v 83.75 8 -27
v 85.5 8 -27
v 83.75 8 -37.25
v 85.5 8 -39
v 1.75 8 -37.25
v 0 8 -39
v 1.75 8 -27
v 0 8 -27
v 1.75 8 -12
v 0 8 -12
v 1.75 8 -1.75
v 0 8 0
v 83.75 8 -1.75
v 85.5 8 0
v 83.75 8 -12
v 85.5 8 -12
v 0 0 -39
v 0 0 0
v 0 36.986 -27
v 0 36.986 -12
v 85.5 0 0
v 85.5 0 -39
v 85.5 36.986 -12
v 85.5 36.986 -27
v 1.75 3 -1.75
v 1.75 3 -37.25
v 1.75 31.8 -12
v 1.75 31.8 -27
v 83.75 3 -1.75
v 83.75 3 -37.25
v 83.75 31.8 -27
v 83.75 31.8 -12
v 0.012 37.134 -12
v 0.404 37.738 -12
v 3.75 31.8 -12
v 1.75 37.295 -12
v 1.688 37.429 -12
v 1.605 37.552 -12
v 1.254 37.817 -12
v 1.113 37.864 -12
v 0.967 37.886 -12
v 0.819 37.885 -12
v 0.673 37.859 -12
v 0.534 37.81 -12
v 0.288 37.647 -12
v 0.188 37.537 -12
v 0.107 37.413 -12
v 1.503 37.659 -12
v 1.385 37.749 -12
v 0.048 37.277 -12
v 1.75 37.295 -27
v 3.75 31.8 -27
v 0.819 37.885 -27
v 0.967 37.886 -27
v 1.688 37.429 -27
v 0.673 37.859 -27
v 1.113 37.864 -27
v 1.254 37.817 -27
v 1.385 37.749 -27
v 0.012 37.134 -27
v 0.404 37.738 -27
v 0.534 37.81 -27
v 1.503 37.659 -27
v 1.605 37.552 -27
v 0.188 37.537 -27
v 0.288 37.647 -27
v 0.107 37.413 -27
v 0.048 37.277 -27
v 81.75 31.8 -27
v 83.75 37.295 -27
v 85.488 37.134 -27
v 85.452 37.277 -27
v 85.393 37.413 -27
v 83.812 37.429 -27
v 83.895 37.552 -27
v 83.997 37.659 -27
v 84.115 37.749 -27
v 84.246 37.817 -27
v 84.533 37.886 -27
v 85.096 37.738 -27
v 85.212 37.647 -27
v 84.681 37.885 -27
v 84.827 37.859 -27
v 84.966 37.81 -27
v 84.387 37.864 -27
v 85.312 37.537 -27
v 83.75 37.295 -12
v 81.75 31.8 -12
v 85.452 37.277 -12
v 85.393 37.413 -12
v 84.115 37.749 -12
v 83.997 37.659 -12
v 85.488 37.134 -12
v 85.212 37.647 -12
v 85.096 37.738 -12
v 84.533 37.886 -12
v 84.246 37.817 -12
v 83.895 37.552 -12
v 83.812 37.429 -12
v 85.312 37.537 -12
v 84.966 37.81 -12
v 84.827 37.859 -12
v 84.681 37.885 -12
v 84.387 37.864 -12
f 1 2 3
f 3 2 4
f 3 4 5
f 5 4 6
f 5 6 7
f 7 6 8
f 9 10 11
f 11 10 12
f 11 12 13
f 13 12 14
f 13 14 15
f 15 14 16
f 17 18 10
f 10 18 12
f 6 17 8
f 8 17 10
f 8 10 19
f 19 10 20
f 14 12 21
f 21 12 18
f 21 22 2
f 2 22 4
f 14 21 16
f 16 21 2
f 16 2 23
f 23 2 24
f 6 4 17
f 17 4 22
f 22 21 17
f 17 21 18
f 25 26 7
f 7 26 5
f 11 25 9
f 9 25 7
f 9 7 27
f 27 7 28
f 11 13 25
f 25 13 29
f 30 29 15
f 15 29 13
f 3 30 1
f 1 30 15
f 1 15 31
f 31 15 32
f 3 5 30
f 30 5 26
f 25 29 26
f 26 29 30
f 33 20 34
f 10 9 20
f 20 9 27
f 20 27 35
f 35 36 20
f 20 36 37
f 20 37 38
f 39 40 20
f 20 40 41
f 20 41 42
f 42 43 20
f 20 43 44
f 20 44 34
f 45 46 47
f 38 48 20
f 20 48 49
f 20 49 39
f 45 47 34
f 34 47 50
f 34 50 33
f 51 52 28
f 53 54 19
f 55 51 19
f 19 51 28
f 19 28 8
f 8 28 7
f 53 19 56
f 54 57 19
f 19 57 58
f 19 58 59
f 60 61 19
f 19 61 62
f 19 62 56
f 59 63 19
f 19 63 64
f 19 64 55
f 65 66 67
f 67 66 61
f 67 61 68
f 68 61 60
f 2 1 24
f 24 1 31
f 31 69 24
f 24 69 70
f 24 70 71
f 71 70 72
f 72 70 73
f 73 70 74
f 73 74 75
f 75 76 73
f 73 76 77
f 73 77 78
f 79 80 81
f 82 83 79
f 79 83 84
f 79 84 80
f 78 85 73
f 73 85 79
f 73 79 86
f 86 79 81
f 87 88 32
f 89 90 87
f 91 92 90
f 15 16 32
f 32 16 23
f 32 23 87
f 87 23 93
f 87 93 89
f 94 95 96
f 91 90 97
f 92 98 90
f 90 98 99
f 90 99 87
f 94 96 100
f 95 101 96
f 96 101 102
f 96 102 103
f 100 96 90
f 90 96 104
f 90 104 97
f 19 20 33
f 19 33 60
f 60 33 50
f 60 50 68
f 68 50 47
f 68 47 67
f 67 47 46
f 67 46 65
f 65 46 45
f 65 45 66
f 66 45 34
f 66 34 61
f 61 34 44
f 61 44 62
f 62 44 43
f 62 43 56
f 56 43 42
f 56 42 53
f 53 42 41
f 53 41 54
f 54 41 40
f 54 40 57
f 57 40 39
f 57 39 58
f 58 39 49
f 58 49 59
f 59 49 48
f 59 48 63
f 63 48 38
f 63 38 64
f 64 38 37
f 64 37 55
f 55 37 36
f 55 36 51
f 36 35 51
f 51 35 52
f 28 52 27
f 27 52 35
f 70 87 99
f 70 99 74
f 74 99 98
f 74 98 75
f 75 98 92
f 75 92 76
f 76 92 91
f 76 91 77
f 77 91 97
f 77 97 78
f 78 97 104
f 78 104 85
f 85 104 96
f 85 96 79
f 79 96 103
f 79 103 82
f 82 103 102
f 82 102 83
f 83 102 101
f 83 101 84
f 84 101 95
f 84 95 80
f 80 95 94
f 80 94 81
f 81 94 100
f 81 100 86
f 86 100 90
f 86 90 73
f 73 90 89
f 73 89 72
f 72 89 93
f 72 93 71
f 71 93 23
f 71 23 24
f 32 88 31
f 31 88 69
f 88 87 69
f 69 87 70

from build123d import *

# Parameters (mm, degrees)
SKETCH1_W           = 85.5
SKETCH1_H           = 39
BOSS_EXTRUDE1_DEPTH = 3
SKETCH2_W           = 85.5
SKETCH2_H           = 39
SKETCH2_W_2         = 82
SKETCH2_H_2         = 35.5
BOSS_EXTRUDE2_DEPTH = 5
SKETCH3_W           = 1.75
SKETCH3_H           = 15
BOSS_EXTRUDE3_DEPTH = 23.8
BOSS_EXTRUDE4_DEPTH = 15


with BuildPart() as part:
    # Sketch1 → Boss-Extrude1 (new body)
    with BuildSketch(Plane(origin=(0, 0, 0), x_dir=(1, 0, 0), z_dir=(0, 1, 0))):
        with Locations((42.75, 19.5)):
            Rectangle(SKETCH1_W, SKETCH1_H)
    extrude(amount=BOSS_EXTRUDE1_DEPTH)

    # Sketch2 → Boss-Extrude2 (add)
    with BuildSketch(Plane(origin=(0, 3, 0), x_dir=(1, 0, 0), z_dir=(0, 1, 0))):
        with Locations((42.75, 19.5)):
            Rectangle(SKETCH2_W, SKETCH2_H)
        with Locations((42.75, 19.5)):
            Rectangle(SKETCH2_W_2, SKETCH2_H_2, mode=Mode.SUBTRACT)
    extrude(amount=BOSS_EXTRUDE2_DEPTH)

    # Sketch3 → Boss-Extrude3 (add)
    with BuildSketch(Plane(origin=(0, 8, 0), x_dir=(1, 0, 0), z_dir=(0, 1, 0))):
        with Locations((0.875, 19.5)):
            Rectangle(SKETCH3_W, SKETCH3_H)
        with Locations((84.625, 19.5)):
            Rectangle(SKETCH3_W, SKETCH3_H)
    extrude(amount=BOSS_EXTRUDE3_DEPTH)

    # Sketch4 → Boss-Extrude4 (add)
    with BuildSketch(Plane.XY.offset(-12)):
        with BuildLine():
            Line((1.75, 31.8), (3.75, 31.8))
            Line((3.75, 31.8), (1.75, 37.294954839))
            ThreePointArc((1.75, 37.294954839), (0.745538584, 37.874880908), (0, 36.986382623))
            Line((0, 36.986382623), (0, 31.8))
            Line((0, 31.8), (1.75, 31.8))
        make_face()
        with BuildLine():
            Line((83.75, 31.8), (85.5, 31.8))
            Line((85.5, 31.8), (85.5, 36.986382623))
            ThreePointArc((85.5, 36.986382623), (84.754461416, 37.874880908), (83.75, 37.294954839))
            Line((83.75, 37.294954839), (81.75, 31.8))
            Line((81.75, 31.8), (83.75, 31.8))
        make_face()
    extrude(amount=-BOSS_EXTRUDE4_DEPTH)


solid = part.part
